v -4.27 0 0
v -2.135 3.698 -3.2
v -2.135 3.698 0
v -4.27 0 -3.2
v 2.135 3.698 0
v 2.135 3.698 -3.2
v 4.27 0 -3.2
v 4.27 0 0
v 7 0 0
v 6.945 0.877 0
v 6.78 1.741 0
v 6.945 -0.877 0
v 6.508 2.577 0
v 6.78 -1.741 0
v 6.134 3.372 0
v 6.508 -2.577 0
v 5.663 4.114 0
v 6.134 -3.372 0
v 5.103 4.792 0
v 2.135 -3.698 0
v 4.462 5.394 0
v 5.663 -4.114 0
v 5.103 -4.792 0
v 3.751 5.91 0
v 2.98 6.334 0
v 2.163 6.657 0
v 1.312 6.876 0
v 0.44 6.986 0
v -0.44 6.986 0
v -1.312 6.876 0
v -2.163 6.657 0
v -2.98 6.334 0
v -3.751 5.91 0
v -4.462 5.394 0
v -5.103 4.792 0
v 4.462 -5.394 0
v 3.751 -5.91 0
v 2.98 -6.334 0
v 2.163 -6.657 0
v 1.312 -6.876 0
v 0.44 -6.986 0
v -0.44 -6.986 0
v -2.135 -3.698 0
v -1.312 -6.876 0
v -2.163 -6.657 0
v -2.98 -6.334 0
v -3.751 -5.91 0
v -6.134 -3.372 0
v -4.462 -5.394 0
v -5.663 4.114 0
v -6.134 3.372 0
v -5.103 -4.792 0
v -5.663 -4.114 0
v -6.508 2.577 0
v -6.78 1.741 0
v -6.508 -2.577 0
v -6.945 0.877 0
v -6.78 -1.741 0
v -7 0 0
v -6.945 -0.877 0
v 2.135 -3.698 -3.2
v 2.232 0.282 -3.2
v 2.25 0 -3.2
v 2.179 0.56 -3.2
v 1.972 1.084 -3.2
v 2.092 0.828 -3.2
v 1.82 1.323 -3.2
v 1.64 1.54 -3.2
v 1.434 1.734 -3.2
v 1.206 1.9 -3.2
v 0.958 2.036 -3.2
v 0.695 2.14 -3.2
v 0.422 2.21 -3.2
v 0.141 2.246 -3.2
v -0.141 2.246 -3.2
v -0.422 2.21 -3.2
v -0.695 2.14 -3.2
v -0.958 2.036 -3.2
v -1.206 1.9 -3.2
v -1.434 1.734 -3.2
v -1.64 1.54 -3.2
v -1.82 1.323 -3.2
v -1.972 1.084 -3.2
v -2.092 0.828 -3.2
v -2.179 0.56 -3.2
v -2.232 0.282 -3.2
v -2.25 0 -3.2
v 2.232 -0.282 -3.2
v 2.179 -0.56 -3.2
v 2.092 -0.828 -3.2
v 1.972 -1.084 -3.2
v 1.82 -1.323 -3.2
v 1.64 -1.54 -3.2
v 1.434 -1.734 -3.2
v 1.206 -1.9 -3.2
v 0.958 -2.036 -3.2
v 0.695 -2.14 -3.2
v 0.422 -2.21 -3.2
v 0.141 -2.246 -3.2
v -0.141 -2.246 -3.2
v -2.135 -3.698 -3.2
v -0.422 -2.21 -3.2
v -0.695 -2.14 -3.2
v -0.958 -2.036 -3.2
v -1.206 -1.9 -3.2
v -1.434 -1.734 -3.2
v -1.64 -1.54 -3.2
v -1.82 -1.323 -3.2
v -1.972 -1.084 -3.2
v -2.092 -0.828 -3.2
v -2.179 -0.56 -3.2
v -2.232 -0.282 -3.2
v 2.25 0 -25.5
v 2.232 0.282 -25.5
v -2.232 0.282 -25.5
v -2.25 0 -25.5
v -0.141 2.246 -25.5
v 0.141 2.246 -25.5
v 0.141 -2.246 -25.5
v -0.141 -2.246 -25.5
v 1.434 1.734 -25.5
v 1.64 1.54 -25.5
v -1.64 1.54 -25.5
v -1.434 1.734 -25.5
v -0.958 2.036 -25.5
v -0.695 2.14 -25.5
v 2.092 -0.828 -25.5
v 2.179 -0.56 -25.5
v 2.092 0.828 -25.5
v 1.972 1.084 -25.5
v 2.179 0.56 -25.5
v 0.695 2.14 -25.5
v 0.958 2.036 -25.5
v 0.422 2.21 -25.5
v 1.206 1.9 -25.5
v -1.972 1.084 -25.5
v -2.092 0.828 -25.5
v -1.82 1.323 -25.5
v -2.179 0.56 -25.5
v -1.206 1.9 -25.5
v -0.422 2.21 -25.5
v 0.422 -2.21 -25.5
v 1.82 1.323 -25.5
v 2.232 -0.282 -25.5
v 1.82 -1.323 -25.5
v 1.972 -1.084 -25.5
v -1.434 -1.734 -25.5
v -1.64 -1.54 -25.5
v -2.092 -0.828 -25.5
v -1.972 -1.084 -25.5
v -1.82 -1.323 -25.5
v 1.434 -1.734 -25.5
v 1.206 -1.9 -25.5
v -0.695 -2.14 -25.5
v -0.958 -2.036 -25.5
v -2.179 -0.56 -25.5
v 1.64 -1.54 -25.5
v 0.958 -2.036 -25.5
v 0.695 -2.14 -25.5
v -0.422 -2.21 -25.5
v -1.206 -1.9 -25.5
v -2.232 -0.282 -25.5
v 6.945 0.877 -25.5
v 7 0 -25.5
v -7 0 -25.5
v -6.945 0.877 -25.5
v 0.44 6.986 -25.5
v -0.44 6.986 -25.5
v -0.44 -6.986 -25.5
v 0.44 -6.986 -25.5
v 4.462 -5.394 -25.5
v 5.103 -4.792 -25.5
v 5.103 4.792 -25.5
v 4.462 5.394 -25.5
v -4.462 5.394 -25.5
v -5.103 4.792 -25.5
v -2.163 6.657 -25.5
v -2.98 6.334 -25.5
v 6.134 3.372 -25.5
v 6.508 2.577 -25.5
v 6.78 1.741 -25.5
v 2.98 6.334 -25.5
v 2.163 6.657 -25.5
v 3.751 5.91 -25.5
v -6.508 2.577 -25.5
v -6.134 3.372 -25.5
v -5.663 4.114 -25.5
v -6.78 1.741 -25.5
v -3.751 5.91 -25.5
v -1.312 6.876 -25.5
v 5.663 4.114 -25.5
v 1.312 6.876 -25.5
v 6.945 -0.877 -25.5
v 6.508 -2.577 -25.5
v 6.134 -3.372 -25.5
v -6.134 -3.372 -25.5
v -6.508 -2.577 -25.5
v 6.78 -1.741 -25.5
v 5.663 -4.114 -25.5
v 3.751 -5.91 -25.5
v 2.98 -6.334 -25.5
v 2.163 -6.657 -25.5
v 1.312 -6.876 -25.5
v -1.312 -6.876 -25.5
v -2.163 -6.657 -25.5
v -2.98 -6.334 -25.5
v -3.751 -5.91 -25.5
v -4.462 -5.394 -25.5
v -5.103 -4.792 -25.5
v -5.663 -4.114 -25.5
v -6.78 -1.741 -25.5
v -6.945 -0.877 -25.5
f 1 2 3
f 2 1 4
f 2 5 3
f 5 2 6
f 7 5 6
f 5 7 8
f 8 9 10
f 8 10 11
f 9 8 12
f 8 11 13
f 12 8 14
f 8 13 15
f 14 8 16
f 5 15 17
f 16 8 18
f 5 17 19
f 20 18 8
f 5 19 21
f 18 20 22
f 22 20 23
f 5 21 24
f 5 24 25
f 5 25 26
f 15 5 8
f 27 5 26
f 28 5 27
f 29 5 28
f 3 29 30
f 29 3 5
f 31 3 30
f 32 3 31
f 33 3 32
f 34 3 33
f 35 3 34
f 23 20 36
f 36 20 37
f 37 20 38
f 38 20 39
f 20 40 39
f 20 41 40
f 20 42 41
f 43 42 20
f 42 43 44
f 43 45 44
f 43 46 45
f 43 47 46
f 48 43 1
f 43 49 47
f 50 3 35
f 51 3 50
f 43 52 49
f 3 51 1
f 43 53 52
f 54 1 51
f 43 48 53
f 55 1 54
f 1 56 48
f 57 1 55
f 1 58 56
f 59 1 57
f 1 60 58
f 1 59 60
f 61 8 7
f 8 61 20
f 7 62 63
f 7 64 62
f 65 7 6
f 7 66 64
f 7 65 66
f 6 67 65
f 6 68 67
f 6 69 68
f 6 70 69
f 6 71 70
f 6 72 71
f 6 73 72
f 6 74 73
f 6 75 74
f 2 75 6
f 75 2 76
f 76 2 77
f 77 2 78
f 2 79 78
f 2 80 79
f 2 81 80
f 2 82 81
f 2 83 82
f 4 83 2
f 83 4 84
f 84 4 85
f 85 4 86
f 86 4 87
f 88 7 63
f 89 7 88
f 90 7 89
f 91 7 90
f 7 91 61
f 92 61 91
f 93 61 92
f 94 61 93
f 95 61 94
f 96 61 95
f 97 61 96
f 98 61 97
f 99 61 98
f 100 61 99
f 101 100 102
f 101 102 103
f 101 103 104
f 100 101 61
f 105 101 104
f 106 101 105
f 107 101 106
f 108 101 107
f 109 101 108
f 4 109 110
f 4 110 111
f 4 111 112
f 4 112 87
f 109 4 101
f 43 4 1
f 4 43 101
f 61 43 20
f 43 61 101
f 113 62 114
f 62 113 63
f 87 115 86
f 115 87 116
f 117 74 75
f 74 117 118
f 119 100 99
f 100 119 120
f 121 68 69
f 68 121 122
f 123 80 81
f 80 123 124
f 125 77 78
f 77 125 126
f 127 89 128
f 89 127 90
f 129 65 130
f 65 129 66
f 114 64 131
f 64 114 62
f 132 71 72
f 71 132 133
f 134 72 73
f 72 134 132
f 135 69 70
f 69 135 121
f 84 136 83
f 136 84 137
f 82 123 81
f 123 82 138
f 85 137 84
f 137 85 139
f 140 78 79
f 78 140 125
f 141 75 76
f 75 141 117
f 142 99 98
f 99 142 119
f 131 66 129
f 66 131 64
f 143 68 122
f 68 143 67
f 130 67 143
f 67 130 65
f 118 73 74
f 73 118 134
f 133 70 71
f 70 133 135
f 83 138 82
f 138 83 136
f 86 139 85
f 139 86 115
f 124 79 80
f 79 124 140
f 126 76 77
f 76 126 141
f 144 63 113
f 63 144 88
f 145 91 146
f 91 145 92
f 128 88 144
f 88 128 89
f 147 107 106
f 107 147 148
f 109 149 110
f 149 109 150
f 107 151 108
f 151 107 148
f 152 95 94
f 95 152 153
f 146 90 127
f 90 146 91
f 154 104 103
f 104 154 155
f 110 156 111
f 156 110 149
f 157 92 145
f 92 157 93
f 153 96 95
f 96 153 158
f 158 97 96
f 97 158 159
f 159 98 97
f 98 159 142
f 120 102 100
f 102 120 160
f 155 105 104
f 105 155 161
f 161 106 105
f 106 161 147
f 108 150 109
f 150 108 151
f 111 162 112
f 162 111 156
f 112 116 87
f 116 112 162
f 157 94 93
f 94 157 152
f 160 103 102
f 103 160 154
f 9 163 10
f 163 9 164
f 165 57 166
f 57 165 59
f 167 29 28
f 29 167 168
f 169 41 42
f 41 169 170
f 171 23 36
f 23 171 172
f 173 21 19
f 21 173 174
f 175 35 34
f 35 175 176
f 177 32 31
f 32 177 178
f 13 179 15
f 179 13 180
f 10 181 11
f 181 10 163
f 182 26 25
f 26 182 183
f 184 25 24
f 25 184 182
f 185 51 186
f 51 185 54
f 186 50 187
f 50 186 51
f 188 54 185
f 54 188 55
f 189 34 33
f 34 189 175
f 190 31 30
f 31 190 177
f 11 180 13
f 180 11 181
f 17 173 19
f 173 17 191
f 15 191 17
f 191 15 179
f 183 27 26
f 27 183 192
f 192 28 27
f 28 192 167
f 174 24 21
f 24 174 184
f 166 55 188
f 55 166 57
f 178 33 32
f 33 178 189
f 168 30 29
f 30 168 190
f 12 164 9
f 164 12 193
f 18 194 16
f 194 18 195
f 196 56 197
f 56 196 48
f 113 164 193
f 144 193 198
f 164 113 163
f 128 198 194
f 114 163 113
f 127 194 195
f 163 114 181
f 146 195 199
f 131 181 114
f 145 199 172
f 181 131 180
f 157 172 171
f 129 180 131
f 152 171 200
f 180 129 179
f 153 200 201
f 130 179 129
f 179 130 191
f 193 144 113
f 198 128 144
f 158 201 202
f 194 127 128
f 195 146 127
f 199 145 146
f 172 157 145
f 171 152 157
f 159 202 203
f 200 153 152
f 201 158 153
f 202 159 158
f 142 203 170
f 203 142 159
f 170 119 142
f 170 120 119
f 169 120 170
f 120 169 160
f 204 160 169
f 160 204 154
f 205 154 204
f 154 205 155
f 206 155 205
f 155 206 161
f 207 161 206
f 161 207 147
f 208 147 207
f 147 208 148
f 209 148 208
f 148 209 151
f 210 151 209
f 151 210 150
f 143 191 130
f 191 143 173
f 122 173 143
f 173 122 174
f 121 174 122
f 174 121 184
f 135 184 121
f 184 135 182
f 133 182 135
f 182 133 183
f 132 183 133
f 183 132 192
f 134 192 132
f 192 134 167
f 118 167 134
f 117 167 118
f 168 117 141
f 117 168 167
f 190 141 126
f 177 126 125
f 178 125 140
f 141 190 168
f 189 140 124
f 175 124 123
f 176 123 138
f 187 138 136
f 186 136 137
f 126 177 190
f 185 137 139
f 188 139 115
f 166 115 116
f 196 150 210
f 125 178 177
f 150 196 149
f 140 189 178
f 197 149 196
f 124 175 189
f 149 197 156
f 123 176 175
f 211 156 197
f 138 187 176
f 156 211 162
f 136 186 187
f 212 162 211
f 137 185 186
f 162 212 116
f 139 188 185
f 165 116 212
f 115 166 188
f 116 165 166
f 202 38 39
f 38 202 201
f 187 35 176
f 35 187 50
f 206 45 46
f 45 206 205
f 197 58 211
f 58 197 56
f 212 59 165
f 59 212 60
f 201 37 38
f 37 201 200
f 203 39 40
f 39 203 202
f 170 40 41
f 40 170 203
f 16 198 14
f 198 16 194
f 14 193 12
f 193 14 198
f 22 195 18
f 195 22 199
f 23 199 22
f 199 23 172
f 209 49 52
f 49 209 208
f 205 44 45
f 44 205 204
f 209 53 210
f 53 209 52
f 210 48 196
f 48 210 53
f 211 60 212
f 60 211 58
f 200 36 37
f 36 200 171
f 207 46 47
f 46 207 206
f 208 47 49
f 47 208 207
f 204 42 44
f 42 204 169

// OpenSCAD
$fn = 50;

difference() {
	union() {
		translate(v = [0, 0, -25.5]) {
			cylinder(h = 25.5, r = 7.0);
		}
	}
	union() {
		translate(v = [0, 0, 0]) {
			rotate(a = [0, 0, 0]) {
				difference() {
					union() {
						translate(v = [0, 0, -3.2]) {
							linear_extrude(height = 3.2) {
								polygon(points = [[4.2698, 0.0], [2.1349000000000005, 3.697755269078796], [-2.134899999999999, 3.6977552690787965], [-4.2698, 5.228996902999369e-16], [-2.134900000000002, -3.6977552690787956], [2.1348999999999974, -3.697755269078798]]);
							}
						}
					}
					union();
				}
			}
		}
		#translate(v = [0, 0, -100.0]) {
			cylinder(h = 200, r = 2.25);
		}
	}
}
